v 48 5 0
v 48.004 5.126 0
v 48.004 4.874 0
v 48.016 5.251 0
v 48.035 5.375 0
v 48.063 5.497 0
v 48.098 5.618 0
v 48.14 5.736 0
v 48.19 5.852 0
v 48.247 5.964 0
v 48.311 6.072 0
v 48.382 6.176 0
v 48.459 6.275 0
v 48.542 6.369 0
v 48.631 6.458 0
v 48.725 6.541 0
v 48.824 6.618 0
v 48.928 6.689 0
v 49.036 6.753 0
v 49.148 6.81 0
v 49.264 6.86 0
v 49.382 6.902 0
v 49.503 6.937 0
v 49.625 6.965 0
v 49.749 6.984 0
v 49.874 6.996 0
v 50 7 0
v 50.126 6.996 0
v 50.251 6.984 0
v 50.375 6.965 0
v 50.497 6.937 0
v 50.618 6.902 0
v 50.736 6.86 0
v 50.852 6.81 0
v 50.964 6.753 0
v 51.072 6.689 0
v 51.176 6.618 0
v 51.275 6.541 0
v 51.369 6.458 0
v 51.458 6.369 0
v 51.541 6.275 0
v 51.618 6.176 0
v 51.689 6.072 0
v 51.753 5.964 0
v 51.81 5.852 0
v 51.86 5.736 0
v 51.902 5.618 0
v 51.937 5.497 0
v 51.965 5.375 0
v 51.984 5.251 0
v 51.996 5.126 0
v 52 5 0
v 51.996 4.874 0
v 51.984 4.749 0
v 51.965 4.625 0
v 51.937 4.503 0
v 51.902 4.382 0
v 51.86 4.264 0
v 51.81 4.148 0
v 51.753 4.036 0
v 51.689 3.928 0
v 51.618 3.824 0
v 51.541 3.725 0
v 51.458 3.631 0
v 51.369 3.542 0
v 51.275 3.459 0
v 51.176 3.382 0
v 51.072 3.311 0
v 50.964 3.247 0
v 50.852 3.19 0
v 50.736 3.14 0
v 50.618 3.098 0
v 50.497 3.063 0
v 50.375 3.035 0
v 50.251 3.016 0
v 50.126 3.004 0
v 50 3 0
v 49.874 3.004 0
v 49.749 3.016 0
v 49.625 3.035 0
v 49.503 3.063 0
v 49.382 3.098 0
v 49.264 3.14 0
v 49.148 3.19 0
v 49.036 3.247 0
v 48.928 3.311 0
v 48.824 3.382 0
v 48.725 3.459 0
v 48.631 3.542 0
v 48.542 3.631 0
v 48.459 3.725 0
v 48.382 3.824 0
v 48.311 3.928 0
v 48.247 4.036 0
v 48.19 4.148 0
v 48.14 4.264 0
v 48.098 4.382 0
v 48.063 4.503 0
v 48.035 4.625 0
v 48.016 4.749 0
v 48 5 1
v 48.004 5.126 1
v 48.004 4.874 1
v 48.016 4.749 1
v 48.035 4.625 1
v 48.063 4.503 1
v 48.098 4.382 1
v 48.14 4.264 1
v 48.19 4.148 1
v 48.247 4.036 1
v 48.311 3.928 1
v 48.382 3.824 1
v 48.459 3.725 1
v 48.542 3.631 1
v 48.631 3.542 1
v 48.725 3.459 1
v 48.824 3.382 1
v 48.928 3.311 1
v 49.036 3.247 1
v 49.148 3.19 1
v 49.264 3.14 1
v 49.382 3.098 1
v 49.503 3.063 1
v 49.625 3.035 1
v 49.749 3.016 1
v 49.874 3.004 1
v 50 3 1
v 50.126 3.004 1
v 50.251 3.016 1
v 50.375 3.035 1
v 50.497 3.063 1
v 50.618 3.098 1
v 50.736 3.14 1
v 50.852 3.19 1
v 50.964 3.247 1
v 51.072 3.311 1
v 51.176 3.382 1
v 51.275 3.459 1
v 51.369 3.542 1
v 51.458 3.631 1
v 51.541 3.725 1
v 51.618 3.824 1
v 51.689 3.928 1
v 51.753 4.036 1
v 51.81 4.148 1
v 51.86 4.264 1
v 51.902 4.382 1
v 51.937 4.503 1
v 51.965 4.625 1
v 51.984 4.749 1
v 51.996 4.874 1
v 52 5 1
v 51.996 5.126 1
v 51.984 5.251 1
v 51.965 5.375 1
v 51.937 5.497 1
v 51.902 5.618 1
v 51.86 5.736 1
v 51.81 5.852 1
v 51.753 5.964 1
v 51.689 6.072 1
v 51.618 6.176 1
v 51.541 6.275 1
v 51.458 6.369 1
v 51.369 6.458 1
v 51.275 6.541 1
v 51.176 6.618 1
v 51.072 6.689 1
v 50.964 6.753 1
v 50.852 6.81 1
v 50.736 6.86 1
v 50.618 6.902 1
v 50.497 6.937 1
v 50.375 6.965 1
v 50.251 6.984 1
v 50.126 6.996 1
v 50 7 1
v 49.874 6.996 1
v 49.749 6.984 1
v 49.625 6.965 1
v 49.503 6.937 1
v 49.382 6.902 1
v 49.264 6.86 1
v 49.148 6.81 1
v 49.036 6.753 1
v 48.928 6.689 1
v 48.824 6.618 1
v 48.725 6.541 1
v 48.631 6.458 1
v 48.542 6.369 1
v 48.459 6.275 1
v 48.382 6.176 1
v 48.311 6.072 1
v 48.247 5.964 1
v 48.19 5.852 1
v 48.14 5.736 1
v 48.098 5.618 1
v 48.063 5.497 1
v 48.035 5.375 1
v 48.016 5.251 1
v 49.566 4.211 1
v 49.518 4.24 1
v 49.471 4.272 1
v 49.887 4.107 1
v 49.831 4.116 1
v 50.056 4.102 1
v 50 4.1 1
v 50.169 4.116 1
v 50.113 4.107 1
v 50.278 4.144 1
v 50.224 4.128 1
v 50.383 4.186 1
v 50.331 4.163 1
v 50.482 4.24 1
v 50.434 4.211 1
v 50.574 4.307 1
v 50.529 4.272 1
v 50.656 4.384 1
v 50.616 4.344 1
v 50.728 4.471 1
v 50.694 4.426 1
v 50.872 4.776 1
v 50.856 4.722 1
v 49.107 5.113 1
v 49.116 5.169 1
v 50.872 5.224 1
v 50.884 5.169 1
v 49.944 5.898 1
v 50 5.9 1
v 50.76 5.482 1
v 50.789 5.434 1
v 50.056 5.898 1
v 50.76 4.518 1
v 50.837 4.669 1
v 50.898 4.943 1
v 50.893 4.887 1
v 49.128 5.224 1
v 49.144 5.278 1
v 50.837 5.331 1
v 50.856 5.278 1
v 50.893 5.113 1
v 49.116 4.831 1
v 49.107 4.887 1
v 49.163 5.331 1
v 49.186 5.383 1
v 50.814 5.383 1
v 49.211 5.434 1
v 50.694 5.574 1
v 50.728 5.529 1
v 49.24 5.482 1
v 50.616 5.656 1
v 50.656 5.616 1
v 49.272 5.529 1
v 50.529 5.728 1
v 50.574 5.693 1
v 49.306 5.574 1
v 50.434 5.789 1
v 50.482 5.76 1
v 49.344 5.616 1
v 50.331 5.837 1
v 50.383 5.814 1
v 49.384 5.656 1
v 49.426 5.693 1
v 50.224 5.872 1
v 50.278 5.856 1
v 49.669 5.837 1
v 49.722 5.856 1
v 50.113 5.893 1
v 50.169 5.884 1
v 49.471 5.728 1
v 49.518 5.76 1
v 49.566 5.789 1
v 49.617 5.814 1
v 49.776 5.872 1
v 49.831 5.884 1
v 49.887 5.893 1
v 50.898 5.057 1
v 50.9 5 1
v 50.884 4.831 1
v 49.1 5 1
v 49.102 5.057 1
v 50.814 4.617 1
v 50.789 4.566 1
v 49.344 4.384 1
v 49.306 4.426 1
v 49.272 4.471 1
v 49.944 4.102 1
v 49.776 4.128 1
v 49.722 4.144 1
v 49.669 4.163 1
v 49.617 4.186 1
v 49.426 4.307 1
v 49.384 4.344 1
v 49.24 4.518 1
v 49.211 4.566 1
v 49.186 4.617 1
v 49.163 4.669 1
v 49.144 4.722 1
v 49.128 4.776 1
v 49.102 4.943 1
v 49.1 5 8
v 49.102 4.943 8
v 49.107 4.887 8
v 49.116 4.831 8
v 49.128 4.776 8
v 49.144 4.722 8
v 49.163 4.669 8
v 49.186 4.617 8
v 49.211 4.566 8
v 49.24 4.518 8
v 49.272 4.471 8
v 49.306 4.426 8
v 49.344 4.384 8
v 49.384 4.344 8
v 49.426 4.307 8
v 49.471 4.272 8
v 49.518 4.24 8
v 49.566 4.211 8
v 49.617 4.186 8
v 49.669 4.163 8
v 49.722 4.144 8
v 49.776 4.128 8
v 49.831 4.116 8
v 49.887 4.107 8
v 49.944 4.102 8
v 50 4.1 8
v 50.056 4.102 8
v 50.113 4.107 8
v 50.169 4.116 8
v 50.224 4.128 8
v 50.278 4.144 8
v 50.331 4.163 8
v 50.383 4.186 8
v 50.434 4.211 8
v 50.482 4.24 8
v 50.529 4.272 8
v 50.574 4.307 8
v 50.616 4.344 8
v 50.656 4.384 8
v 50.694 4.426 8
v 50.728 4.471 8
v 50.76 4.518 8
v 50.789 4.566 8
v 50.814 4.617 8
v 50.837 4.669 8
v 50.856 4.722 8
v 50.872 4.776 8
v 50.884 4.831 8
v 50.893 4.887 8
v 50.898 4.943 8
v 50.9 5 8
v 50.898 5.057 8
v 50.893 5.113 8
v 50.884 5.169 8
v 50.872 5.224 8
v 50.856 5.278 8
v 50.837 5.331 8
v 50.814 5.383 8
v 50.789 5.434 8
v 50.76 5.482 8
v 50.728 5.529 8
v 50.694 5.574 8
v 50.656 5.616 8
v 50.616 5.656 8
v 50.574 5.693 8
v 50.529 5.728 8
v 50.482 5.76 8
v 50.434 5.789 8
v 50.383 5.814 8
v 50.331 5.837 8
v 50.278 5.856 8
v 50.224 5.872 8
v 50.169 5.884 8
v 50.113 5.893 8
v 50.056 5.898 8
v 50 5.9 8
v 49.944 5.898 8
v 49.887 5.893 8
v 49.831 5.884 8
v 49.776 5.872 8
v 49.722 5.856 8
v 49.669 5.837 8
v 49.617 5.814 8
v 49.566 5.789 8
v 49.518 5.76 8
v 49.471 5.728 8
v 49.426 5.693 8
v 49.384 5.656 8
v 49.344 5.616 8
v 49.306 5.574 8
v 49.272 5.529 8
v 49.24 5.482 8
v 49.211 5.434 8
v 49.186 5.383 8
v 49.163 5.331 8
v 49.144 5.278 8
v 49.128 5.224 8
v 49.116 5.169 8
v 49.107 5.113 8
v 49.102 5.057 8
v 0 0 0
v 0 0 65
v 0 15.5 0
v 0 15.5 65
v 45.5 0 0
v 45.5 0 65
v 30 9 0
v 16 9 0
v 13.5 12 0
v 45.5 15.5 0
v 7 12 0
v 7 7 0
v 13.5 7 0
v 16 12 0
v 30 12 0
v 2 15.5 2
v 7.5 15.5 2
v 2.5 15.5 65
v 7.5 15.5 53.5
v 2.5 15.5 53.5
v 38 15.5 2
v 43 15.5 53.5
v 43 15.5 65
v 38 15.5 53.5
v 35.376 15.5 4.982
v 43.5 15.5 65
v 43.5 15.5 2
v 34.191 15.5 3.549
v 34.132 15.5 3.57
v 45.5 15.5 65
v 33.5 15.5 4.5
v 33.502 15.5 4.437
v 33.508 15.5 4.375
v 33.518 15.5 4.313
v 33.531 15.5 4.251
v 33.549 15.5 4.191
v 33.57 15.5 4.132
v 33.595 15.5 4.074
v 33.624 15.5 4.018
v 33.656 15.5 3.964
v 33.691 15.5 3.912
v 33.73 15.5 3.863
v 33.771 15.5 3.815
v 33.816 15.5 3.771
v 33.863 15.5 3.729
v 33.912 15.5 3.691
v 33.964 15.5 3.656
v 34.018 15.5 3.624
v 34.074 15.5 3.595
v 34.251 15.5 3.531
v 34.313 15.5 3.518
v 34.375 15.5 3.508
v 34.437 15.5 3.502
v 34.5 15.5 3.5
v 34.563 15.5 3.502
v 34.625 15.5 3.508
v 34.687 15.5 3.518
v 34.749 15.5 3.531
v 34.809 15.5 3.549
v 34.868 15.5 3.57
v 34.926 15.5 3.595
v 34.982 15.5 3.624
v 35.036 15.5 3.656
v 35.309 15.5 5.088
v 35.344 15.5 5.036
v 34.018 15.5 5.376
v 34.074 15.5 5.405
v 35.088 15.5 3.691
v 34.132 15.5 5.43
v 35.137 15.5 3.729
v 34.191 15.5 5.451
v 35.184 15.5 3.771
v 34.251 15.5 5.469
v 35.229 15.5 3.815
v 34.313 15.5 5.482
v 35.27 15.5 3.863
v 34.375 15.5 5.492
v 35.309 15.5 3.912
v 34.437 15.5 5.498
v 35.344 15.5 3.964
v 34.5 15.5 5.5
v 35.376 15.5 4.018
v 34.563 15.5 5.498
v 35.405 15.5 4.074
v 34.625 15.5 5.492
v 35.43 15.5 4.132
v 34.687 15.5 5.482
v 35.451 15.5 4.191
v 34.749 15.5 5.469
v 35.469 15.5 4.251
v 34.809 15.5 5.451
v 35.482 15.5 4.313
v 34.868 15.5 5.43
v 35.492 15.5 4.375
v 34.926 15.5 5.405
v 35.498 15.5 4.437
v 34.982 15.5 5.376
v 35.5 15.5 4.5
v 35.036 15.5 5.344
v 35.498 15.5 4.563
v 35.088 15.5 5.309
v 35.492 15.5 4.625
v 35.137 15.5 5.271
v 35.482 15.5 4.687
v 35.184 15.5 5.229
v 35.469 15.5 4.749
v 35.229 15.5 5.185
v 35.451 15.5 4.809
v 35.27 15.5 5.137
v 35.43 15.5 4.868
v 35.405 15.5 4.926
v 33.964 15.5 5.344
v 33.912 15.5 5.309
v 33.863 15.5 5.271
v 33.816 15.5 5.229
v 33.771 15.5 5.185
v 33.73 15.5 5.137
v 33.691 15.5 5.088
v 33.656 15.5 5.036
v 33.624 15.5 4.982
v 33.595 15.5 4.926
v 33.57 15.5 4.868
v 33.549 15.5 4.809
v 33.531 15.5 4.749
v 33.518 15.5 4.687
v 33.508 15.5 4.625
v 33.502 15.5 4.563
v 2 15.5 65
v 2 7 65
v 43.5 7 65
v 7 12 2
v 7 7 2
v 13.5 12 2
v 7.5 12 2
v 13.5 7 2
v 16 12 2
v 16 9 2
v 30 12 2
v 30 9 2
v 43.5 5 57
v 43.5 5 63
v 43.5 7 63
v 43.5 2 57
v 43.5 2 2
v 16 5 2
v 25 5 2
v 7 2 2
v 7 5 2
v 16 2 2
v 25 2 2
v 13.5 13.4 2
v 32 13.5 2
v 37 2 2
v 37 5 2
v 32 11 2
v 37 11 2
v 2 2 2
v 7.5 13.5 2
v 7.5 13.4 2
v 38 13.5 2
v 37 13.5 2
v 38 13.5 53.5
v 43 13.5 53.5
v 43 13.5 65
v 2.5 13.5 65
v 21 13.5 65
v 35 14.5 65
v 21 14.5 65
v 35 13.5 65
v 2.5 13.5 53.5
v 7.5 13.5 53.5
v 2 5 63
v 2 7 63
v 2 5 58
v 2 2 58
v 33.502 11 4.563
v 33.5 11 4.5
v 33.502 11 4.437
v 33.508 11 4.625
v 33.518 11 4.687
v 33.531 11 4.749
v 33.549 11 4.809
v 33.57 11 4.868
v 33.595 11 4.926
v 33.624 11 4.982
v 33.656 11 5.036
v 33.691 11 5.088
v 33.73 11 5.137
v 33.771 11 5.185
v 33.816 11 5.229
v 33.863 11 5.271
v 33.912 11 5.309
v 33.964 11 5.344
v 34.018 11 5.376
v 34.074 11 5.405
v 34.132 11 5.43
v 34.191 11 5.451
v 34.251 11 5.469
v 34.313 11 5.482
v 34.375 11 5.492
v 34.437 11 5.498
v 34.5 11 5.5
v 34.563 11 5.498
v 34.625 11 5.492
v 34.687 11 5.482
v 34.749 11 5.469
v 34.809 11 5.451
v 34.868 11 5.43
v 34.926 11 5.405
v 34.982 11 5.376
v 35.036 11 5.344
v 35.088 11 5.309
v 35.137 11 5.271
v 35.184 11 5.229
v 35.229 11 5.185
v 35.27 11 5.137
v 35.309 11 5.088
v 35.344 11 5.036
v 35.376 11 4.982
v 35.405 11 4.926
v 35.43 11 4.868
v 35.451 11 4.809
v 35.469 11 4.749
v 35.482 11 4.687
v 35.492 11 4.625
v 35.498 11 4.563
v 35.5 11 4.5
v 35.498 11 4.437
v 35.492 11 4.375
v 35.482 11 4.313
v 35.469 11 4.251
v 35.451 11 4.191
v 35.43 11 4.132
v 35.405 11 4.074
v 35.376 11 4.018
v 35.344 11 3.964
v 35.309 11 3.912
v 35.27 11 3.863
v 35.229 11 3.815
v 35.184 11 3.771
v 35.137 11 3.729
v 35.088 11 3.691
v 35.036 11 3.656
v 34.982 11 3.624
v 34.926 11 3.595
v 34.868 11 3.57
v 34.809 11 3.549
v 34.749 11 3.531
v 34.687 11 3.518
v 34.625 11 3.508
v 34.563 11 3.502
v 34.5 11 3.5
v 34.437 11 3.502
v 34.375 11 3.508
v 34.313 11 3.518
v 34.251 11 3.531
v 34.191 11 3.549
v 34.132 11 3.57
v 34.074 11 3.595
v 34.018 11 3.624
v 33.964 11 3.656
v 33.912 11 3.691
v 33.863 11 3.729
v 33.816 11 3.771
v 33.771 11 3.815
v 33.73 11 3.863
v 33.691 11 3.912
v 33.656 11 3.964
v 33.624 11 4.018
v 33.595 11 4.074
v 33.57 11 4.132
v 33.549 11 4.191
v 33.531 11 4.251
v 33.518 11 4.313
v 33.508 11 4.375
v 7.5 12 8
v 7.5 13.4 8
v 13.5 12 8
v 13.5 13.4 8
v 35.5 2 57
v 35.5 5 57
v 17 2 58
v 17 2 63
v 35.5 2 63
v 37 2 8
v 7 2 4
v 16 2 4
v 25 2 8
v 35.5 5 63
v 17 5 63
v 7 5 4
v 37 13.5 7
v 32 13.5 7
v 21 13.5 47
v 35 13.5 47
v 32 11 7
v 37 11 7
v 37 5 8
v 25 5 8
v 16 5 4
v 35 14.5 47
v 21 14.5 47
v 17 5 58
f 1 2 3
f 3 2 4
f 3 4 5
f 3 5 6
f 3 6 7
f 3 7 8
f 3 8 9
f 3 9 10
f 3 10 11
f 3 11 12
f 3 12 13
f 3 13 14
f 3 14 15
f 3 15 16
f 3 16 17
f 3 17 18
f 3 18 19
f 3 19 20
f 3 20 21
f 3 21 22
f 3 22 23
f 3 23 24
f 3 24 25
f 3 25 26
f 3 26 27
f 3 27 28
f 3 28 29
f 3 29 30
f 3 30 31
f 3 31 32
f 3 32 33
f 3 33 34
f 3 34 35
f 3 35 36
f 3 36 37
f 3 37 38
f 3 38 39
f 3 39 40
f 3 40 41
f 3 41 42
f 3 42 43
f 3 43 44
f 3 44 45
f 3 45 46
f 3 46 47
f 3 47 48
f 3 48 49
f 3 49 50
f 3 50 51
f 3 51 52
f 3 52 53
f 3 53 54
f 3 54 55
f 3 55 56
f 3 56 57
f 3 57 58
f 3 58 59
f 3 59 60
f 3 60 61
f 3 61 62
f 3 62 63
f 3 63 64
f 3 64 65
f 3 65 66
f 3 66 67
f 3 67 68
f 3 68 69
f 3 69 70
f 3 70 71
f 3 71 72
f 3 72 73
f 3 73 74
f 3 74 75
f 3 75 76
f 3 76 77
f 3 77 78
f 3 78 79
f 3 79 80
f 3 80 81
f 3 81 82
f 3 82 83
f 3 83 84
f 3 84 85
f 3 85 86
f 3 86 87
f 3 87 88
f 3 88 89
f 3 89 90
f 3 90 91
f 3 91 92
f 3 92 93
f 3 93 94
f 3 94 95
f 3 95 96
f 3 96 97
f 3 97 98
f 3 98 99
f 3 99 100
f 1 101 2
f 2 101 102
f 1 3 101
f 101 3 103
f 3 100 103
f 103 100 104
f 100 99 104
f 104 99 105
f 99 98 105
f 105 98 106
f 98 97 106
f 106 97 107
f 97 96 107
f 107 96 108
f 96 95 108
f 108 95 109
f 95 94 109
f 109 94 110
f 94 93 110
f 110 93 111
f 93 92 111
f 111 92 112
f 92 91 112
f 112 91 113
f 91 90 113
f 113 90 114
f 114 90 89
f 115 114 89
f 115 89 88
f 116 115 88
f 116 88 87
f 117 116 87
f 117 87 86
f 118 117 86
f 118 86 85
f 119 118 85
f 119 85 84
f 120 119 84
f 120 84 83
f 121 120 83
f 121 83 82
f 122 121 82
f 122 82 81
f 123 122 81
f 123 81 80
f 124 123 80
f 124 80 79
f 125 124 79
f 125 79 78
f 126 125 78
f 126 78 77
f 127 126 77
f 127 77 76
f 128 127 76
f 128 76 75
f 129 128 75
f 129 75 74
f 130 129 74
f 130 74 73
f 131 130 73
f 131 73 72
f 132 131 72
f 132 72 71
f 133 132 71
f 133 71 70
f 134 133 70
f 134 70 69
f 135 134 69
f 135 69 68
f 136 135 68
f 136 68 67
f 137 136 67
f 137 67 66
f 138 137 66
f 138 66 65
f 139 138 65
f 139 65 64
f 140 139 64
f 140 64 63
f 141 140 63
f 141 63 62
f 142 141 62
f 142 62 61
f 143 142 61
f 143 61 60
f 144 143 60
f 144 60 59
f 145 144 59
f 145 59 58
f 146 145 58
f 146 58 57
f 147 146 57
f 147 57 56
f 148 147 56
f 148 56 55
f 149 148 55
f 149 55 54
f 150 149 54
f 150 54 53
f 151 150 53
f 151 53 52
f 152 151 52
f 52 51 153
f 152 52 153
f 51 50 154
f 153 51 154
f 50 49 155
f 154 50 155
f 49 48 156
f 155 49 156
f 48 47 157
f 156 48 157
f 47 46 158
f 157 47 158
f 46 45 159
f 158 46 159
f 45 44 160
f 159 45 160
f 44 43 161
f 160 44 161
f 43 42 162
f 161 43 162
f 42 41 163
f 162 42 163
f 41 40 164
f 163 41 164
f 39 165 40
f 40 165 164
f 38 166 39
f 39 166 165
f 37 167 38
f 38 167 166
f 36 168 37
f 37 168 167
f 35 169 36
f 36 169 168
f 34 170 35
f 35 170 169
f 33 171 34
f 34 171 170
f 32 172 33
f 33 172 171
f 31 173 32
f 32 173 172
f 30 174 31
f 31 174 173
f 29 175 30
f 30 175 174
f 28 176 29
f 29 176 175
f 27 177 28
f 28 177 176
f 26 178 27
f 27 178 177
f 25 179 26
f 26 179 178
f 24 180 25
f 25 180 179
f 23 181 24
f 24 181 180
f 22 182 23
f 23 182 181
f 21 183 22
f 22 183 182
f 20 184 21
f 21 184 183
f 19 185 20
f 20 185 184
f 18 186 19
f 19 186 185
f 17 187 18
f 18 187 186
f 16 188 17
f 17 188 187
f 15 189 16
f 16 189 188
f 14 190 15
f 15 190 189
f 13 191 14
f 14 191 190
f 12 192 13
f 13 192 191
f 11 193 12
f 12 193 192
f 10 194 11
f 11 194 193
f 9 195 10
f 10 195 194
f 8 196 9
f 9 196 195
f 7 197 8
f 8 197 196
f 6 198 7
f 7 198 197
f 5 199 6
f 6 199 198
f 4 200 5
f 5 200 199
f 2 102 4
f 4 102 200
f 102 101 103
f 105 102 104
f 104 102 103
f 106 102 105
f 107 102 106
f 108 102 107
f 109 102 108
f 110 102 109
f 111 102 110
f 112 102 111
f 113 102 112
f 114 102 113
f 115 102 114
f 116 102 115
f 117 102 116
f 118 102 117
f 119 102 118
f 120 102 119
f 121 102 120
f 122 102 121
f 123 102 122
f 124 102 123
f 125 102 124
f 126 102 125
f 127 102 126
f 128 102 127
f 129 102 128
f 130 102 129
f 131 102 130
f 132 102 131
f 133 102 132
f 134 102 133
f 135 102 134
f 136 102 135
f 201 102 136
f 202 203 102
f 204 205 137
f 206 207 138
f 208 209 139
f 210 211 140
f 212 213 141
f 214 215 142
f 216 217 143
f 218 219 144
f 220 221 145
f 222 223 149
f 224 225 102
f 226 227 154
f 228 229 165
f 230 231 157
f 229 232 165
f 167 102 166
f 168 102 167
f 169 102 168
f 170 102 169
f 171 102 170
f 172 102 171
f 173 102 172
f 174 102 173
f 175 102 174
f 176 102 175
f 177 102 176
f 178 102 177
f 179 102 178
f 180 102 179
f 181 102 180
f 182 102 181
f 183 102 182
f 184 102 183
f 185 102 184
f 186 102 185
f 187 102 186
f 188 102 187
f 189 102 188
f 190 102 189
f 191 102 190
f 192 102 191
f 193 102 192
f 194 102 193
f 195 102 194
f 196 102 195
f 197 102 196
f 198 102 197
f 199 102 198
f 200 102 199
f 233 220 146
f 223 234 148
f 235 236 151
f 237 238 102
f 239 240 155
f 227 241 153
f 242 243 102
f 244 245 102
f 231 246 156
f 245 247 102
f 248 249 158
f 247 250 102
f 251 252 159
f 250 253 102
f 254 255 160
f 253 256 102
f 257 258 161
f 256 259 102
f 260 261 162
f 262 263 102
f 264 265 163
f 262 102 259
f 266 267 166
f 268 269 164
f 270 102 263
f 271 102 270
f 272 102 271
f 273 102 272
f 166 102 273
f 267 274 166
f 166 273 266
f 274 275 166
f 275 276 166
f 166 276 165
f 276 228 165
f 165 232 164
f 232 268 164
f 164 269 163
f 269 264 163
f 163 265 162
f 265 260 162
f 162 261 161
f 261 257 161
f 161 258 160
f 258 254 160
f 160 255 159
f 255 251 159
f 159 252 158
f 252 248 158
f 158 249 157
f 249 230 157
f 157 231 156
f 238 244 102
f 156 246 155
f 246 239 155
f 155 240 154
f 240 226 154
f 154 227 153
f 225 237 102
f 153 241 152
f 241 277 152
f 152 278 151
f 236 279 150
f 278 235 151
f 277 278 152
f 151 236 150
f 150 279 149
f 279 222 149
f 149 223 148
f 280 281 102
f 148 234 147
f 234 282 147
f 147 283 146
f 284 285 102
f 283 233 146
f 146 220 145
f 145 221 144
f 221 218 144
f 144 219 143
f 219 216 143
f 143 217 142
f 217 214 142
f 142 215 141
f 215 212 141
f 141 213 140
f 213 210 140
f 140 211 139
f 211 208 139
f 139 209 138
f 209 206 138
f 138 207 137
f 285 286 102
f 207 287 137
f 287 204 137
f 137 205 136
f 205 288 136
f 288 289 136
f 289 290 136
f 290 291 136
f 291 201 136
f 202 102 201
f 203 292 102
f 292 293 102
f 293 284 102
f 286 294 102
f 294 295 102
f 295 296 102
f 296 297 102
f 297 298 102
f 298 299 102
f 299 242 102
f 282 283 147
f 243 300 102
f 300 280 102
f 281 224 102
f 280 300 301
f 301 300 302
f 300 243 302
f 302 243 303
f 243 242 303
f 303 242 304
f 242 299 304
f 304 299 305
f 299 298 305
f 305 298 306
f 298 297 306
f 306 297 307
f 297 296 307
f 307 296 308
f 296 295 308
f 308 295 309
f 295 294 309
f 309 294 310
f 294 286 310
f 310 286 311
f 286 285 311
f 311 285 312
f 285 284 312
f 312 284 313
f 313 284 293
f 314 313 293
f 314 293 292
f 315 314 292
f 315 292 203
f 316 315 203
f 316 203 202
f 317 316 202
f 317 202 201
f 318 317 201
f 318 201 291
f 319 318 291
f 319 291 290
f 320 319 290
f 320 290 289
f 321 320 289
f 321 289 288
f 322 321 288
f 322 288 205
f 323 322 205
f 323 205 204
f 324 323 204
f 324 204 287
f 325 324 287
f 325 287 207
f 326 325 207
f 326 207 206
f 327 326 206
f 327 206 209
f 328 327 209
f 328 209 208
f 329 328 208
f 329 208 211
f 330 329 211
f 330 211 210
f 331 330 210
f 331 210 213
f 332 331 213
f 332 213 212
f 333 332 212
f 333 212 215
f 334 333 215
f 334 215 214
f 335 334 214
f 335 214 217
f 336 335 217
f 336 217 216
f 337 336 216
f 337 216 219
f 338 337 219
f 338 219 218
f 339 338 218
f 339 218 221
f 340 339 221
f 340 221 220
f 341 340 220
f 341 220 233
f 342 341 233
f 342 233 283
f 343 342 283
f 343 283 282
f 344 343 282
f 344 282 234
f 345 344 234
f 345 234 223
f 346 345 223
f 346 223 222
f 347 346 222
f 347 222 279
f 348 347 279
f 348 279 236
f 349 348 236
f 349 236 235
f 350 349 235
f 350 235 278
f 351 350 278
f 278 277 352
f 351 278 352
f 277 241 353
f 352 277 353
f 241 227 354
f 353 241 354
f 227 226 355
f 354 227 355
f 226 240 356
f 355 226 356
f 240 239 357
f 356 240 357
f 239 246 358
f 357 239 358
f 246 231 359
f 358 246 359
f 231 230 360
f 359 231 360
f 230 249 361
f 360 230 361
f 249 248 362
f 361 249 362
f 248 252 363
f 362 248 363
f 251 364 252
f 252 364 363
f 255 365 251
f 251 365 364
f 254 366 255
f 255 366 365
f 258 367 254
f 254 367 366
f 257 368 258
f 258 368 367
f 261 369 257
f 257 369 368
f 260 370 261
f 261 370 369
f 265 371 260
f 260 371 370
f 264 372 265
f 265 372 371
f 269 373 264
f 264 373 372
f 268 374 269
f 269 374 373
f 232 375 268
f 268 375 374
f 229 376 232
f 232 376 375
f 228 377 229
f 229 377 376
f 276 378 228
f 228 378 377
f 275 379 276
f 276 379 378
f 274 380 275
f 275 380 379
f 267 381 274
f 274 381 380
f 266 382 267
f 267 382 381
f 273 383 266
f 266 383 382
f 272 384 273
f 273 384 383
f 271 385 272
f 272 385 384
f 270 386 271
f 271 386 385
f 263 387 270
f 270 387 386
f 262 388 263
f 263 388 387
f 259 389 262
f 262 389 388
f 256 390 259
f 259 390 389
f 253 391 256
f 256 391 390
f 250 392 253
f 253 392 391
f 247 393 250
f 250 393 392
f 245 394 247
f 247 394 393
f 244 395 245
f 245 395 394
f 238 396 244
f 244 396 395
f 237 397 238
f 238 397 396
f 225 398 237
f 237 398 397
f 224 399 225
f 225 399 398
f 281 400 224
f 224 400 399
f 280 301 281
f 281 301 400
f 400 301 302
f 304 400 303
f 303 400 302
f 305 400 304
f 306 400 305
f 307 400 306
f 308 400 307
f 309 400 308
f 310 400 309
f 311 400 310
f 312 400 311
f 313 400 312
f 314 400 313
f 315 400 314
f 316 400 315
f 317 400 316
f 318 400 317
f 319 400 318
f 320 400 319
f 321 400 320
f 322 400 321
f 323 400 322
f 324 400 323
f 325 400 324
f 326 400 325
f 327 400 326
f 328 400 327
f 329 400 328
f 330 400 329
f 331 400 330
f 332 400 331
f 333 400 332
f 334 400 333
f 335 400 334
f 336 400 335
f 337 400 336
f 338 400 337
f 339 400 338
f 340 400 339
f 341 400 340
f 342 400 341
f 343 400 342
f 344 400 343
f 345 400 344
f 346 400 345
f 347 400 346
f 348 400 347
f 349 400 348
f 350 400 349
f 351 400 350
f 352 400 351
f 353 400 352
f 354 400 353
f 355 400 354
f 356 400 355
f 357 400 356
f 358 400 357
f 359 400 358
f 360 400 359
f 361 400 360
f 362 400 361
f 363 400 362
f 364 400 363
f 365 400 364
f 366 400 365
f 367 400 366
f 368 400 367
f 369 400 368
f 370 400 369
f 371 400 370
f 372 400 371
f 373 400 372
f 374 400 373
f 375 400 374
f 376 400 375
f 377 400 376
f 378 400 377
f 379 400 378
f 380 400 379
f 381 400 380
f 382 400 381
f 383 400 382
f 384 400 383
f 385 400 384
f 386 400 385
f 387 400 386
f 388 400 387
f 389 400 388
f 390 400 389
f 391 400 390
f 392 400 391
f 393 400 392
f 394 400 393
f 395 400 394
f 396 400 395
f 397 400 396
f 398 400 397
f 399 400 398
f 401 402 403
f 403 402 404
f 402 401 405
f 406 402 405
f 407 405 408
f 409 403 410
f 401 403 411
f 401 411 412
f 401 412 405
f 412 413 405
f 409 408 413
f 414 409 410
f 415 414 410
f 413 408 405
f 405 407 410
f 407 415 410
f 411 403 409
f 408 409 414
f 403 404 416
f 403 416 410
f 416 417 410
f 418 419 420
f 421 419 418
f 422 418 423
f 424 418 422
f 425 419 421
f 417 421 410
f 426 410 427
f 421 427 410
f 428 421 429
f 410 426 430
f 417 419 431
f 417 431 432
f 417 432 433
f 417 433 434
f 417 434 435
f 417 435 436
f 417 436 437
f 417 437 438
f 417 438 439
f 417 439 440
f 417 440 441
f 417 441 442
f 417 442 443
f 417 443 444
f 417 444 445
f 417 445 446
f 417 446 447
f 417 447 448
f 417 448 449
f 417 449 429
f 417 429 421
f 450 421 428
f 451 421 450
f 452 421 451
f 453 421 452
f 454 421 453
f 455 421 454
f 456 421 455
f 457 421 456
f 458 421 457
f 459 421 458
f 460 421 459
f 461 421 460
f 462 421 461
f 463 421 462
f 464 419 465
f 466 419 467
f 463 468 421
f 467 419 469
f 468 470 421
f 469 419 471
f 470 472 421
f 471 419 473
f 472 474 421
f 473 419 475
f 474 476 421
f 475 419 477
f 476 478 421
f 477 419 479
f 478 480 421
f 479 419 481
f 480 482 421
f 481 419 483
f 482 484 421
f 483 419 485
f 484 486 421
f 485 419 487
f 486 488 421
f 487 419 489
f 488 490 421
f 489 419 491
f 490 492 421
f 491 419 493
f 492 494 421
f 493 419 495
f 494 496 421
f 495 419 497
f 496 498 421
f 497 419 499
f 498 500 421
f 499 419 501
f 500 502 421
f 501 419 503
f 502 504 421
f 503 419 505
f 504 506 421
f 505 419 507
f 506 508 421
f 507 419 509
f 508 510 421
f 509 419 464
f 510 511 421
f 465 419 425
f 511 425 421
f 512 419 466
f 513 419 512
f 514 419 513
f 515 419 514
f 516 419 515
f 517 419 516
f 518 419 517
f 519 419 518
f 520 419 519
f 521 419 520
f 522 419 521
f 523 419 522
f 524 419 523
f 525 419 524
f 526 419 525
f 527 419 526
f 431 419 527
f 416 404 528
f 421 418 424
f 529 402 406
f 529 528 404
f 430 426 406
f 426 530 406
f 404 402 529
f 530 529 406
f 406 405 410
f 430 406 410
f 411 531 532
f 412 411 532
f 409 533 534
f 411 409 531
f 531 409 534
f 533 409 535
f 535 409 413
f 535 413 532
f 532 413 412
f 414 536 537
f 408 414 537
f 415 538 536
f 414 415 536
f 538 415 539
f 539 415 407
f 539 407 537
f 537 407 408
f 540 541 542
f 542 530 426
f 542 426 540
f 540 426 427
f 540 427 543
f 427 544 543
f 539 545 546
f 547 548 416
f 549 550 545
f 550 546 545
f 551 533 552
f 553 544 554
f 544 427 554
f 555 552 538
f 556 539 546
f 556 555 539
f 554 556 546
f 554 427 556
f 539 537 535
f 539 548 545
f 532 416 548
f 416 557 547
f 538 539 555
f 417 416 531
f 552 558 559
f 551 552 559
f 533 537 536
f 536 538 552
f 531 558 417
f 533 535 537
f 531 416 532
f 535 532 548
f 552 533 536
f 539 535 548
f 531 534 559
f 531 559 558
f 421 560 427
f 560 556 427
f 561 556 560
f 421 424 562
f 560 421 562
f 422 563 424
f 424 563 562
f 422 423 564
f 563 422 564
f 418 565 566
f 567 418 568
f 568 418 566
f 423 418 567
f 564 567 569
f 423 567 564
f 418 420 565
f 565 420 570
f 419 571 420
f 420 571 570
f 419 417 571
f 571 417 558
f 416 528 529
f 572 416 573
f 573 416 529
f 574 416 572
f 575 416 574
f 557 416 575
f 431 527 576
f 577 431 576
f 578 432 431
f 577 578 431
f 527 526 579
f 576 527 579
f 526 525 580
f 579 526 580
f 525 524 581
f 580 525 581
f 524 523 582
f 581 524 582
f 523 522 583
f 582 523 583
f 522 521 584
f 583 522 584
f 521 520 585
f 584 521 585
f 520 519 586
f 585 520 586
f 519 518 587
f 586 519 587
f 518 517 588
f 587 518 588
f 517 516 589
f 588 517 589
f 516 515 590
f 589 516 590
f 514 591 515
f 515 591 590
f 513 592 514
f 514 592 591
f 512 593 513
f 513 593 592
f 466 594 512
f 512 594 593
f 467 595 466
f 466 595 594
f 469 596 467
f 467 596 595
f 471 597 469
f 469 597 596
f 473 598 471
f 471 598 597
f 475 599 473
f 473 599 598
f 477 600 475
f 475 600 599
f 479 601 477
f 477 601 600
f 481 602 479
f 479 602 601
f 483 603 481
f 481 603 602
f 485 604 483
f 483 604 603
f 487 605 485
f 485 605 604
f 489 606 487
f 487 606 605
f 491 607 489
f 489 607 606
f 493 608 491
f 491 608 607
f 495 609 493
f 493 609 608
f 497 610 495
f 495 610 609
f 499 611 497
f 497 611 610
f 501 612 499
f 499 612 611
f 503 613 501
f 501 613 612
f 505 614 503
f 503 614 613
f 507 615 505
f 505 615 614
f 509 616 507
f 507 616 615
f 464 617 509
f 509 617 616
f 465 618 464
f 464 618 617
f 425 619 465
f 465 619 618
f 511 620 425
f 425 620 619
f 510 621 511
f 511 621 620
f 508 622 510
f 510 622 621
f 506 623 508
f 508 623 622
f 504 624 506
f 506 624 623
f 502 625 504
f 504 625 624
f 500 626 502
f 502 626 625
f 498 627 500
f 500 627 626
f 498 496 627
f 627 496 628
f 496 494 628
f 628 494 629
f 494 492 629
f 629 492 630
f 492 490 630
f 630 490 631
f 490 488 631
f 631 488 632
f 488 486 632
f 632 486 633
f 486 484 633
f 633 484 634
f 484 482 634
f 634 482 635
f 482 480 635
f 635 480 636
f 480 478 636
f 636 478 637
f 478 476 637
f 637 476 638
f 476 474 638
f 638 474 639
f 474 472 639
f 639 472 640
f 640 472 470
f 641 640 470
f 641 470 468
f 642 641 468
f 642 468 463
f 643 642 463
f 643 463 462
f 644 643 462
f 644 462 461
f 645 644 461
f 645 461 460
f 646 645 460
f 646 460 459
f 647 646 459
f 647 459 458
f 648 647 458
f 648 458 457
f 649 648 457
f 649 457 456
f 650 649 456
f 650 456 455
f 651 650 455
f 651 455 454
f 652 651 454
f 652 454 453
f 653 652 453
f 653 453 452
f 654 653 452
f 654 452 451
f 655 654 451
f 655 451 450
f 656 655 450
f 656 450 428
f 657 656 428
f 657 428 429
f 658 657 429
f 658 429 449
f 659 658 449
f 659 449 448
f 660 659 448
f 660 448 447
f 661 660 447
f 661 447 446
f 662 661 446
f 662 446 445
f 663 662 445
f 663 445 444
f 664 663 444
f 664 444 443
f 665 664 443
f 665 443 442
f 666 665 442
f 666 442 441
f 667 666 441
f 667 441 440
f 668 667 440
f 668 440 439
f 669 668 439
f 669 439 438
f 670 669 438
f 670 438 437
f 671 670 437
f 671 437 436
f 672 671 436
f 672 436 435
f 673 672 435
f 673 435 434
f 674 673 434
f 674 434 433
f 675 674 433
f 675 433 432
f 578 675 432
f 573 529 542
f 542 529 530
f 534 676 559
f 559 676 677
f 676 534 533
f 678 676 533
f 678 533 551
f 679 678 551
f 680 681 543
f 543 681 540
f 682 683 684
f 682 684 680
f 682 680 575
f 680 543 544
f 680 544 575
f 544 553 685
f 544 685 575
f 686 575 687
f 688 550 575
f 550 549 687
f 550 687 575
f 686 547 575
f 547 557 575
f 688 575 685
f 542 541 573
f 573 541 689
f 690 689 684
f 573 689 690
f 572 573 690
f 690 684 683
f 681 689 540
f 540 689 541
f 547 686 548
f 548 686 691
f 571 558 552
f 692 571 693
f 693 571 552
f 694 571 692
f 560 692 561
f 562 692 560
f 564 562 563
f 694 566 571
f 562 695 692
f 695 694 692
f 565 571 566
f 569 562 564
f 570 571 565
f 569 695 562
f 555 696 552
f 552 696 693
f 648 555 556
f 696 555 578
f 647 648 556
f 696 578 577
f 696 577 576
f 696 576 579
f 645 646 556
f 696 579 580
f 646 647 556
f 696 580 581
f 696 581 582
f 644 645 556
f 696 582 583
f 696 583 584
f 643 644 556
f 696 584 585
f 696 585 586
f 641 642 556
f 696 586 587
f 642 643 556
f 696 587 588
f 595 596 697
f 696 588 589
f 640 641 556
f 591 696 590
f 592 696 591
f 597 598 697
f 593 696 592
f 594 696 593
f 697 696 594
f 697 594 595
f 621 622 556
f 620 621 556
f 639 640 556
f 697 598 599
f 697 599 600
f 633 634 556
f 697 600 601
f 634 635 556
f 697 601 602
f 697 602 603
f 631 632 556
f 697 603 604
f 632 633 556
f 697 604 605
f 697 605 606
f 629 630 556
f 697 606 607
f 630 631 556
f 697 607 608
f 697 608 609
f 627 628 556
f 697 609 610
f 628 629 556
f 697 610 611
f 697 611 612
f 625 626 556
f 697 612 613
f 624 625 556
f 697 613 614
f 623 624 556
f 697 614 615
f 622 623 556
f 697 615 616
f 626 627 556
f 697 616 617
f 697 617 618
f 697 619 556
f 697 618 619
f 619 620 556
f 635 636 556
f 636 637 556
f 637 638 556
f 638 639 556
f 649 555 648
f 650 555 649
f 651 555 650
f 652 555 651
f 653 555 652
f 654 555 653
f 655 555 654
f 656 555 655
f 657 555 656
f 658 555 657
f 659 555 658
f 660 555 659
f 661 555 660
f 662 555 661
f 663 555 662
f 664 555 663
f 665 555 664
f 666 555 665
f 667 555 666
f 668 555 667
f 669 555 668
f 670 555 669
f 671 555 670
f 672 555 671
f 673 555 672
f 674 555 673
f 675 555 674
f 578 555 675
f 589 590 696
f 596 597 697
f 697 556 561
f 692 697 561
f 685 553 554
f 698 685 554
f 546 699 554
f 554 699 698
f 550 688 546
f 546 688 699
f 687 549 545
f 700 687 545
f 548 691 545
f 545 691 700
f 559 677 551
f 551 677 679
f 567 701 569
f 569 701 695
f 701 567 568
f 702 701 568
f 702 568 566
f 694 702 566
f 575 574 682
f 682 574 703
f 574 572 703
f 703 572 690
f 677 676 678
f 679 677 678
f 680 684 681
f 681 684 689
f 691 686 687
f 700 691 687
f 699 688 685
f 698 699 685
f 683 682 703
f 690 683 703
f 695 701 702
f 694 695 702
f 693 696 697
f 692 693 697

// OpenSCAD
union(){    // hmatnik na tlacidlo
	translate([ 50, 5, 4])   
cylinder (h = 8, r=0.9, center = true, $fn=100);
translate([ 50, 5, 0.5]) 
cylinder (h = 1, r=2, center = true, $fn=100);
}

//krabicka
union(){
difference(){
union(){
difference(){			//puzdro
	cube([ 45.5, 15.5, 65]);
	translate([ 2, 2, 2])
	cube([ 41.5, 11.5, 63]);
	translate([ 21, 13.5, 47])
	cube([ 14, 1, 18]);
	translate([ 2, 13.5, 2])
	cube([ 5.5, 2, 51.5]);
	translate([ 38, 13.5, 2])
	cube([ 5.5, 2, 51.5]);
	translate([ 43, 13.5, 53.5])
	cube([ 0.5, 2, 11.6]);
	translate([ 2, 13.5, 53.5])
	cube([ 0.5, 2, 11.6]);
	translate([ 7, 7, 0])
	cube([ 6.5, 5, 2]);
	translate([ 16, 9, 0])
	cube([ 14, 3, 2]);
//	translate([ 10, 1, 10])   
//	rotate ([90,0,0])cylinder (h = 2.1, r=2, center = true, $fn=100);
}

translate([ 32, 11, 2])		//kocka na tlacidlo
cube([ 5, 4.5, 5]);


}
translate([ 34.5, 14.25, 4.5])   // diera na hmatnik na tlacidlo
rotate ([90,0,0])cylinder (h = 7, r=1, center = true, $fn=100);

}	//podpery pod pcb
	translate([ 7, 2, 2])
	cube([ 9, 3, 2]);
	translate([ 25, 2, 2])
	cube([ 12, 3, 6]);
	translate([ 7.5, 12, 2])
	cube([ 6, 1.4, 6]);
//	translate([ 10, 1, 10])   
//	rootate ([90,0,0])cylinder (h = 2.1, r=2, center = true, $fn=100);
	translate([ 35.5, 2, 57])
	cube([ 8, 3, 6]);
	translate([ 2, 2, 58])
	cube([ 15, 3, 5]);
	translate([ 2, 2, 63])
	cube([ 41.5, 5, 2]);

}
